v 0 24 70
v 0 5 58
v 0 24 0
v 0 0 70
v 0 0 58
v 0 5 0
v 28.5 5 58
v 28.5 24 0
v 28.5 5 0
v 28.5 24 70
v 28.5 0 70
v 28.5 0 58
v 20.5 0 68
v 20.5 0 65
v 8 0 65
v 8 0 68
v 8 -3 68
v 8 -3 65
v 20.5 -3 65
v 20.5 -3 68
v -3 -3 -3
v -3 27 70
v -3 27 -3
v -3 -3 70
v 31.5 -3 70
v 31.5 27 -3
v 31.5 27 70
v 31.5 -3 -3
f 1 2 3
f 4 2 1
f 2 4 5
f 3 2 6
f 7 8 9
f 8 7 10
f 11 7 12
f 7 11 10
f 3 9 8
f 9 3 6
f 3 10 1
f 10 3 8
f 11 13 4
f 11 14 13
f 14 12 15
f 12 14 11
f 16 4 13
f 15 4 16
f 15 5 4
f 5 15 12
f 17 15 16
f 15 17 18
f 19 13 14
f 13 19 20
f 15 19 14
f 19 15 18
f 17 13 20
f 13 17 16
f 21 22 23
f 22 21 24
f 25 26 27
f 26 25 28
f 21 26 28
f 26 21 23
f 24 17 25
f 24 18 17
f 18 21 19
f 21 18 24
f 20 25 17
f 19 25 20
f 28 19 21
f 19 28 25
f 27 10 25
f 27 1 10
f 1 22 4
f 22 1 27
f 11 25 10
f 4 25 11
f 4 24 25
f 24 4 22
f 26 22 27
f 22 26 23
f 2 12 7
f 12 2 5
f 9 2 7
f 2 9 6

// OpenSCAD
union(){
    difference(){
        translate([0,0,-3])
        linear_extrude(73){
            polygon([[-3,-3],[-3,27],[31.5,27],[31.5,-3]]);
        }
        union(){
            linear_extrude(72){
                polygon([[0,0],[0,24],[28.5,24],[28.5,0]]);
            }
            translate([0,0,65])
                linear_extrude(3){
                    polygon([[8,-4],[8,1],[20.5,1],[20.5,-4]]);
                }
        }
    }
    linear_extrude(58){
        polygon([[0,0],[0,5],[28.5,5],[28.5,0]]);
    }
}
